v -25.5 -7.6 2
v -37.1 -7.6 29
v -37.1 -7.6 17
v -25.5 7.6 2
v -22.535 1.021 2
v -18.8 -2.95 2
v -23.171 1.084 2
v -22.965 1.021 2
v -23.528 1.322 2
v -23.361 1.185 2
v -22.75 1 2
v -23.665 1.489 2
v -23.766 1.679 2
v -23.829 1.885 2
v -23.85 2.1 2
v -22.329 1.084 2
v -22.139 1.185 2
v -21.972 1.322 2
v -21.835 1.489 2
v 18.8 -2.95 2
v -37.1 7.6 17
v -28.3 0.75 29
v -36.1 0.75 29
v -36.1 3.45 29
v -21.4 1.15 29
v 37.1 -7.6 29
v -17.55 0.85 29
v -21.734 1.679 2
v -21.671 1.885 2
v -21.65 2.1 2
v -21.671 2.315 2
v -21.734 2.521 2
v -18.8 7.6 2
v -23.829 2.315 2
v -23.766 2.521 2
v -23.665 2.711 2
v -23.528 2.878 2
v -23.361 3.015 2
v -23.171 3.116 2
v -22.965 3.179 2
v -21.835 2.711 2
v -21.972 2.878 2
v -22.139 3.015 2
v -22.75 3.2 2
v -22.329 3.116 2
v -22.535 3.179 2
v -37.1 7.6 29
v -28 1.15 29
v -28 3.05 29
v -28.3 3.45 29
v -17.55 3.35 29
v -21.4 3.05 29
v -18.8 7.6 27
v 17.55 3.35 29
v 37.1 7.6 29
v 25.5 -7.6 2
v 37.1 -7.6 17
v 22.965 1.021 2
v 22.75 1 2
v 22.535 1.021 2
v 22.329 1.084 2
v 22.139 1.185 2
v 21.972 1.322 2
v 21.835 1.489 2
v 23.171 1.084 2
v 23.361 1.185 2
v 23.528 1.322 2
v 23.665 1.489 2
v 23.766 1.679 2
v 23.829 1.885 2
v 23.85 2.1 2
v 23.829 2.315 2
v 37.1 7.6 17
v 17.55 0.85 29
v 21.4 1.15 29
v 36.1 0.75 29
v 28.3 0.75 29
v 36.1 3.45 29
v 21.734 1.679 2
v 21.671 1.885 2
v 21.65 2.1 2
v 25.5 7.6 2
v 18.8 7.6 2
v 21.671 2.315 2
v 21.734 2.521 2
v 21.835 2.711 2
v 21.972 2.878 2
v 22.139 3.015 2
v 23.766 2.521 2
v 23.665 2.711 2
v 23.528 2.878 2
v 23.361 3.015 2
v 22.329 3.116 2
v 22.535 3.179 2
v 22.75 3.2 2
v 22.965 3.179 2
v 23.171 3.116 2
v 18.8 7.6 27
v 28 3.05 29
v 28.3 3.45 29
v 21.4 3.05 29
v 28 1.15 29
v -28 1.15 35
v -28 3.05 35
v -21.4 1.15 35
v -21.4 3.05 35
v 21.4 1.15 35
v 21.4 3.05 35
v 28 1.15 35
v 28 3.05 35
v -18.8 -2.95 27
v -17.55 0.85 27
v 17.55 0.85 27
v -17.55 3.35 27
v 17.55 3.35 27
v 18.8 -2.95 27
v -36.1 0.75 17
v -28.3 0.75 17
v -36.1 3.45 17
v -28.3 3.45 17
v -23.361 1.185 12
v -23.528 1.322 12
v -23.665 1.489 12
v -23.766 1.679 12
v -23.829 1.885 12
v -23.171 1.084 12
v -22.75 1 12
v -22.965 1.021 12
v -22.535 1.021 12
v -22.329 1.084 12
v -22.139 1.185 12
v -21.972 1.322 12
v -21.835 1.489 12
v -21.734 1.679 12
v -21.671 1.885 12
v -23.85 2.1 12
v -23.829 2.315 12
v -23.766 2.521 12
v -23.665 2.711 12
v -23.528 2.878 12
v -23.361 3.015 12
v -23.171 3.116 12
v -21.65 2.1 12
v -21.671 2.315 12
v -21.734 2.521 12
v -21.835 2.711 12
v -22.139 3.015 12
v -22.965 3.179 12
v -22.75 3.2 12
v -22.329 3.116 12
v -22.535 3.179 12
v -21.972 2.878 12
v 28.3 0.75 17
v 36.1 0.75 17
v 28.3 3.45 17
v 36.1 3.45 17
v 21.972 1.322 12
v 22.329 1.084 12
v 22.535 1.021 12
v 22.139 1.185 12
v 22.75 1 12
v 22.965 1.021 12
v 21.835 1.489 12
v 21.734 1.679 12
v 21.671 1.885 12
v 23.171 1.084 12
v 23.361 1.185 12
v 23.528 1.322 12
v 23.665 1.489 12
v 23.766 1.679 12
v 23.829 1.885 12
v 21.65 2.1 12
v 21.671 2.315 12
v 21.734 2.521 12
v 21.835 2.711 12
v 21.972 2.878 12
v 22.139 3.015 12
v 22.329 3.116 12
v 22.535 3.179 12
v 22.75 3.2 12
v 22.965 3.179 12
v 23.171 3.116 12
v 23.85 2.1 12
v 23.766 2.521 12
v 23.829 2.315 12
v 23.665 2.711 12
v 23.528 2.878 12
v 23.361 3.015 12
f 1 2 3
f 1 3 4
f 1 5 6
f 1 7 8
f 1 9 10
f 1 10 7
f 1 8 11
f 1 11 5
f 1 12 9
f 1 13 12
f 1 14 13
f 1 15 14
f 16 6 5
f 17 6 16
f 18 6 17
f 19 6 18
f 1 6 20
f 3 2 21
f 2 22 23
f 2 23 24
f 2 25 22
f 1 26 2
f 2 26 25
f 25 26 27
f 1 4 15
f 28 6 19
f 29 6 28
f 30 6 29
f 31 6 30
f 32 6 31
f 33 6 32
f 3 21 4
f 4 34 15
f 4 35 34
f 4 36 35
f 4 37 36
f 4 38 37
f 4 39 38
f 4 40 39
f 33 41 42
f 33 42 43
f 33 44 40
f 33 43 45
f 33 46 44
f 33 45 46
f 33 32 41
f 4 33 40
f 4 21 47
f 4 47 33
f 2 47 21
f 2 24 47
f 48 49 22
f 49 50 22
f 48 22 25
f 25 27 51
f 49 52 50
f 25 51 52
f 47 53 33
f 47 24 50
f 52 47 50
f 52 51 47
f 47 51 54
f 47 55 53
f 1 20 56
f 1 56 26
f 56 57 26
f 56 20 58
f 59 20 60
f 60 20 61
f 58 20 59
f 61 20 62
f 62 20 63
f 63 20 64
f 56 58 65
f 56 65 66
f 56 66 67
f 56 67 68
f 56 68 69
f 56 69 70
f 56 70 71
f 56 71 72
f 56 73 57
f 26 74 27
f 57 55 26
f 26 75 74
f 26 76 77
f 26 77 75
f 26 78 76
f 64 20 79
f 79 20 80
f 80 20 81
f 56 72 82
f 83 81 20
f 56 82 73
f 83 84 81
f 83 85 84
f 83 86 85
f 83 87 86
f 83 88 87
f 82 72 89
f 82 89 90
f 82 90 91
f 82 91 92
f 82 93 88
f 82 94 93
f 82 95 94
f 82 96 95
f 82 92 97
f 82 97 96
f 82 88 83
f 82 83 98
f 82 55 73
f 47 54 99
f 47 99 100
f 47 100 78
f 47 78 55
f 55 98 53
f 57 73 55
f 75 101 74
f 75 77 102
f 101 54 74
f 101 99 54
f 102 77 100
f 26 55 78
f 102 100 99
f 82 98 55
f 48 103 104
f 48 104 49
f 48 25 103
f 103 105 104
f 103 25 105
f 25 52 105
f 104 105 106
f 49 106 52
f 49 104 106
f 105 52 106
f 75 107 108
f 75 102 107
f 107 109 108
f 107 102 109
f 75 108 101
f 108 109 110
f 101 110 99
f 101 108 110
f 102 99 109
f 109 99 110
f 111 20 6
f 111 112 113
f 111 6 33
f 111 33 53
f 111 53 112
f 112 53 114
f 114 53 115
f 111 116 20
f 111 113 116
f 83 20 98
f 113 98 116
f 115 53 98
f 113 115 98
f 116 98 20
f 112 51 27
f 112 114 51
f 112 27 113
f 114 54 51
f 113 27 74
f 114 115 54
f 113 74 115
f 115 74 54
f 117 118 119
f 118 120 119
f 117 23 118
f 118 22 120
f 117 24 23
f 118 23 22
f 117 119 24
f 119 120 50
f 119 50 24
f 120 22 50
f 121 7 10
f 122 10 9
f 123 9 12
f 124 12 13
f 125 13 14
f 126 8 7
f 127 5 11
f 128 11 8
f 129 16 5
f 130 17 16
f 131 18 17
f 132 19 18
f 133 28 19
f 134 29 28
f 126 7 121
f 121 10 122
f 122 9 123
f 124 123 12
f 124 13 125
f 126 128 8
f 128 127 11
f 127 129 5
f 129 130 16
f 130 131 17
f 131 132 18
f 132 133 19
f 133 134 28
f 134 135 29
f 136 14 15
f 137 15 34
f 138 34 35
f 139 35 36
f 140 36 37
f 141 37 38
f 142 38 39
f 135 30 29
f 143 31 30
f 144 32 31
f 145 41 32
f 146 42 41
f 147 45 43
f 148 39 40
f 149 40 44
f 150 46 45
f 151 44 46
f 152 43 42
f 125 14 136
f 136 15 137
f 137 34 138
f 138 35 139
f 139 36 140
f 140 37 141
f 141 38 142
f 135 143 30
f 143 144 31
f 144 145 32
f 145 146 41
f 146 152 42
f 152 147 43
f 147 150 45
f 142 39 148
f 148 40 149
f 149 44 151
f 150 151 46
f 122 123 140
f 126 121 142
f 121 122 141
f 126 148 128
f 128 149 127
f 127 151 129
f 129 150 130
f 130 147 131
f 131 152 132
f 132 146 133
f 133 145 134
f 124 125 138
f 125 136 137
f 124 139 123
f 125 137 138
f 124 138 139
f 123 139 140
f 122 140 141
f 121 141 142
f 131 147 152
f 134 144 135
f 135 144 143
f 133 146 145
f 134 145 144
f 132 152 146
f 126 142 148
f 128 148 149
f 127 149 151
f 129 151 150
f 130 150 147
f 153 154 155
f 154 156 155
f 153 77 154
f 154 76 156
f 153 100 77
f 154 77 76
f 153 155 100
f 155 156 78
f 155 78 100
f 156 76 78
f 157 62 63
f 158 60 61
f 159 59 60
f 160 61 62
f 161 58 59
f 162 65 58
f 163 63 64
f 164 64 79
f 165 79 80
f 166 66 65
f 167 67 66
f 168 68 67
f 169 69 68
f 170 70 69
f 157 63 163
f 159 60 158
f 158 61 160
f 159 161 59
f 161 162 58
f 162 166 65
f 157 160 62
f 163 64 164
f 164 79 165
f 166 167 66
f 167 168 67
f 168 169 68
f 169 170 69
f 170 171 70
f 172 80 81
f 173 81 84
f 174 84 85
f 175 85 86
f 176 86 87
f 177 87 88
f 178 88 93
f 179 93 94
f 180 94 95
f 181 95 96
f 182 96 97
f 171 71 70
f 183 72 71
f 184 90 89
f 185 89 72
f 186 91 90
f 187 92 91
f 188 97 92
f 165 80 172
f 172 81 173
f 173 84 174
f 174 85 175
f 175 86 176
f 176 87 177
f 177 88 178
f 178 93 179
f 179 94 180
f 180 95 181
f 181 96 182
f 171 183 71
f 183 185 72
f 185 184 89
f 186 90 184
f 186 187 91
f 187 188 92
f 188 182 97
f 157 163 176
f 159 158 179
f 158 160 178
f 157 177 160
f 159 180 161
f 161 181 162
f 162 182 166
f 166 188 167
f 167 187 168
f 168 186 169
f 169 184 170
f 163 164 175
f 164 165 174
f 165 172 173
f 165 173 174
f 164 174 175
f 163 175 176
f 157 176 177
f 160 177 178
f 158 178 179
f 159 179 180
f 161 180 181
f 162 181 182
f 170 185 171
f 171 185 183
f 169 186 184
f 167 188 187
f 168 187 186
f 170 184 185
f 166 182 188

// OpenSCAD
// Cartridge guide (cap) for slot B on pin headers, draft 5 (see drawing/).
// Sleeve, slit, key holes and door openers taken from vcsslot.stl
// (RabbitEngineering, Thingiverse 618065, CC BY-NC).
// x = along the slot, y = across (side A negative, side B positive), z = up from the PCB.
// Print upright, feet on the bed.

slot_top   = 27.0;    // slot B top above the PCB (measured)
plate      = 2.0;     // closed top, rests on the slot
gap        = 2.0;     // gap under the feet; the screws pull the cap onto the slot
top        = slot_top + plate;
cap_l      = 74.2;    // sleeve length (vcsslot)
cap_w      = 15.2;    // sleeve width (vcsslot)
off        = 2.1;     // slit centre towards side B (vcsslot 2.06)
full_z     = 17.0;    // full length above this height
foot_x     = 25.5;    // half length of the foot
band       = 8.5;     // below step_z max. 8.5 from slot centre (free area 61 x 17)
step_z     = slot_top + plate - 18.5;   // cartridge shell bottom
cav_l      = 37.0 + 0.6;
cav_w      = 9.5 + 0.6;
slit_l     = 35.1;
slit_w     = 2.5;
nub_x0     = 28.3;  nub_x1 = 36.1;  nub_w = 2.7;  nub_depth = 12;   // closed at the bottom
opn_x0     = 21.4;  opn_x1 = 28.0;  opn_t = 1.9;  opn_h = 6.0;
hole_x     = 22.75; screw_d = 2.2;  screw_depth = 10;

module body() {
    rotate([90, 0, 0]) translate([0, 0, -cap_w / 2])
        linear_extrude(cap_w)
            polygon([[-foot_x, gap], [-cap_l / 2, full_z], [-cap_l / 2, top],
                     [cap_l / 2, top], [cap_l / 2, full_z], [foot_x, gap]]);
}

difference() {
    union() {
        body();
        for (s = [-1, 1])
            translate([s > 0 ? opn_x0 : -opn_x1, off - opn_t / 2, top - 0.01])
                cube([opn_x1 - opn_x0, opn_t, opn_h + 0.01]);
    }
    // slot cavity, open towards side B
    translate([-cav_l / 2, off - cav_w / 2, -1]) cube([cav_l, cap_w, slot_top + 1]);
    // slit for the cartridge PCB
    translate([-slit_l / 2, off - slit_w / 2, slot_top - 1]) cube([slit_l, slit_w, plate + 2]);
    for (s = [-1, 1]) {
        // key holes for the cartridge nubs
        translate([s > 0 ? nub_x0 : -nub_x1, off - nub_w / 2, top - nub_depth]) cube([nub_x1 - nub_x0, nub_w, nub_depth + 1]);
        // M2.5 screw holes from below
        translate([s * hole_x, off, -1]) cylinder(d = screw_d, h = gap + screw_depth + 1, $fn = 32);
    }
}
